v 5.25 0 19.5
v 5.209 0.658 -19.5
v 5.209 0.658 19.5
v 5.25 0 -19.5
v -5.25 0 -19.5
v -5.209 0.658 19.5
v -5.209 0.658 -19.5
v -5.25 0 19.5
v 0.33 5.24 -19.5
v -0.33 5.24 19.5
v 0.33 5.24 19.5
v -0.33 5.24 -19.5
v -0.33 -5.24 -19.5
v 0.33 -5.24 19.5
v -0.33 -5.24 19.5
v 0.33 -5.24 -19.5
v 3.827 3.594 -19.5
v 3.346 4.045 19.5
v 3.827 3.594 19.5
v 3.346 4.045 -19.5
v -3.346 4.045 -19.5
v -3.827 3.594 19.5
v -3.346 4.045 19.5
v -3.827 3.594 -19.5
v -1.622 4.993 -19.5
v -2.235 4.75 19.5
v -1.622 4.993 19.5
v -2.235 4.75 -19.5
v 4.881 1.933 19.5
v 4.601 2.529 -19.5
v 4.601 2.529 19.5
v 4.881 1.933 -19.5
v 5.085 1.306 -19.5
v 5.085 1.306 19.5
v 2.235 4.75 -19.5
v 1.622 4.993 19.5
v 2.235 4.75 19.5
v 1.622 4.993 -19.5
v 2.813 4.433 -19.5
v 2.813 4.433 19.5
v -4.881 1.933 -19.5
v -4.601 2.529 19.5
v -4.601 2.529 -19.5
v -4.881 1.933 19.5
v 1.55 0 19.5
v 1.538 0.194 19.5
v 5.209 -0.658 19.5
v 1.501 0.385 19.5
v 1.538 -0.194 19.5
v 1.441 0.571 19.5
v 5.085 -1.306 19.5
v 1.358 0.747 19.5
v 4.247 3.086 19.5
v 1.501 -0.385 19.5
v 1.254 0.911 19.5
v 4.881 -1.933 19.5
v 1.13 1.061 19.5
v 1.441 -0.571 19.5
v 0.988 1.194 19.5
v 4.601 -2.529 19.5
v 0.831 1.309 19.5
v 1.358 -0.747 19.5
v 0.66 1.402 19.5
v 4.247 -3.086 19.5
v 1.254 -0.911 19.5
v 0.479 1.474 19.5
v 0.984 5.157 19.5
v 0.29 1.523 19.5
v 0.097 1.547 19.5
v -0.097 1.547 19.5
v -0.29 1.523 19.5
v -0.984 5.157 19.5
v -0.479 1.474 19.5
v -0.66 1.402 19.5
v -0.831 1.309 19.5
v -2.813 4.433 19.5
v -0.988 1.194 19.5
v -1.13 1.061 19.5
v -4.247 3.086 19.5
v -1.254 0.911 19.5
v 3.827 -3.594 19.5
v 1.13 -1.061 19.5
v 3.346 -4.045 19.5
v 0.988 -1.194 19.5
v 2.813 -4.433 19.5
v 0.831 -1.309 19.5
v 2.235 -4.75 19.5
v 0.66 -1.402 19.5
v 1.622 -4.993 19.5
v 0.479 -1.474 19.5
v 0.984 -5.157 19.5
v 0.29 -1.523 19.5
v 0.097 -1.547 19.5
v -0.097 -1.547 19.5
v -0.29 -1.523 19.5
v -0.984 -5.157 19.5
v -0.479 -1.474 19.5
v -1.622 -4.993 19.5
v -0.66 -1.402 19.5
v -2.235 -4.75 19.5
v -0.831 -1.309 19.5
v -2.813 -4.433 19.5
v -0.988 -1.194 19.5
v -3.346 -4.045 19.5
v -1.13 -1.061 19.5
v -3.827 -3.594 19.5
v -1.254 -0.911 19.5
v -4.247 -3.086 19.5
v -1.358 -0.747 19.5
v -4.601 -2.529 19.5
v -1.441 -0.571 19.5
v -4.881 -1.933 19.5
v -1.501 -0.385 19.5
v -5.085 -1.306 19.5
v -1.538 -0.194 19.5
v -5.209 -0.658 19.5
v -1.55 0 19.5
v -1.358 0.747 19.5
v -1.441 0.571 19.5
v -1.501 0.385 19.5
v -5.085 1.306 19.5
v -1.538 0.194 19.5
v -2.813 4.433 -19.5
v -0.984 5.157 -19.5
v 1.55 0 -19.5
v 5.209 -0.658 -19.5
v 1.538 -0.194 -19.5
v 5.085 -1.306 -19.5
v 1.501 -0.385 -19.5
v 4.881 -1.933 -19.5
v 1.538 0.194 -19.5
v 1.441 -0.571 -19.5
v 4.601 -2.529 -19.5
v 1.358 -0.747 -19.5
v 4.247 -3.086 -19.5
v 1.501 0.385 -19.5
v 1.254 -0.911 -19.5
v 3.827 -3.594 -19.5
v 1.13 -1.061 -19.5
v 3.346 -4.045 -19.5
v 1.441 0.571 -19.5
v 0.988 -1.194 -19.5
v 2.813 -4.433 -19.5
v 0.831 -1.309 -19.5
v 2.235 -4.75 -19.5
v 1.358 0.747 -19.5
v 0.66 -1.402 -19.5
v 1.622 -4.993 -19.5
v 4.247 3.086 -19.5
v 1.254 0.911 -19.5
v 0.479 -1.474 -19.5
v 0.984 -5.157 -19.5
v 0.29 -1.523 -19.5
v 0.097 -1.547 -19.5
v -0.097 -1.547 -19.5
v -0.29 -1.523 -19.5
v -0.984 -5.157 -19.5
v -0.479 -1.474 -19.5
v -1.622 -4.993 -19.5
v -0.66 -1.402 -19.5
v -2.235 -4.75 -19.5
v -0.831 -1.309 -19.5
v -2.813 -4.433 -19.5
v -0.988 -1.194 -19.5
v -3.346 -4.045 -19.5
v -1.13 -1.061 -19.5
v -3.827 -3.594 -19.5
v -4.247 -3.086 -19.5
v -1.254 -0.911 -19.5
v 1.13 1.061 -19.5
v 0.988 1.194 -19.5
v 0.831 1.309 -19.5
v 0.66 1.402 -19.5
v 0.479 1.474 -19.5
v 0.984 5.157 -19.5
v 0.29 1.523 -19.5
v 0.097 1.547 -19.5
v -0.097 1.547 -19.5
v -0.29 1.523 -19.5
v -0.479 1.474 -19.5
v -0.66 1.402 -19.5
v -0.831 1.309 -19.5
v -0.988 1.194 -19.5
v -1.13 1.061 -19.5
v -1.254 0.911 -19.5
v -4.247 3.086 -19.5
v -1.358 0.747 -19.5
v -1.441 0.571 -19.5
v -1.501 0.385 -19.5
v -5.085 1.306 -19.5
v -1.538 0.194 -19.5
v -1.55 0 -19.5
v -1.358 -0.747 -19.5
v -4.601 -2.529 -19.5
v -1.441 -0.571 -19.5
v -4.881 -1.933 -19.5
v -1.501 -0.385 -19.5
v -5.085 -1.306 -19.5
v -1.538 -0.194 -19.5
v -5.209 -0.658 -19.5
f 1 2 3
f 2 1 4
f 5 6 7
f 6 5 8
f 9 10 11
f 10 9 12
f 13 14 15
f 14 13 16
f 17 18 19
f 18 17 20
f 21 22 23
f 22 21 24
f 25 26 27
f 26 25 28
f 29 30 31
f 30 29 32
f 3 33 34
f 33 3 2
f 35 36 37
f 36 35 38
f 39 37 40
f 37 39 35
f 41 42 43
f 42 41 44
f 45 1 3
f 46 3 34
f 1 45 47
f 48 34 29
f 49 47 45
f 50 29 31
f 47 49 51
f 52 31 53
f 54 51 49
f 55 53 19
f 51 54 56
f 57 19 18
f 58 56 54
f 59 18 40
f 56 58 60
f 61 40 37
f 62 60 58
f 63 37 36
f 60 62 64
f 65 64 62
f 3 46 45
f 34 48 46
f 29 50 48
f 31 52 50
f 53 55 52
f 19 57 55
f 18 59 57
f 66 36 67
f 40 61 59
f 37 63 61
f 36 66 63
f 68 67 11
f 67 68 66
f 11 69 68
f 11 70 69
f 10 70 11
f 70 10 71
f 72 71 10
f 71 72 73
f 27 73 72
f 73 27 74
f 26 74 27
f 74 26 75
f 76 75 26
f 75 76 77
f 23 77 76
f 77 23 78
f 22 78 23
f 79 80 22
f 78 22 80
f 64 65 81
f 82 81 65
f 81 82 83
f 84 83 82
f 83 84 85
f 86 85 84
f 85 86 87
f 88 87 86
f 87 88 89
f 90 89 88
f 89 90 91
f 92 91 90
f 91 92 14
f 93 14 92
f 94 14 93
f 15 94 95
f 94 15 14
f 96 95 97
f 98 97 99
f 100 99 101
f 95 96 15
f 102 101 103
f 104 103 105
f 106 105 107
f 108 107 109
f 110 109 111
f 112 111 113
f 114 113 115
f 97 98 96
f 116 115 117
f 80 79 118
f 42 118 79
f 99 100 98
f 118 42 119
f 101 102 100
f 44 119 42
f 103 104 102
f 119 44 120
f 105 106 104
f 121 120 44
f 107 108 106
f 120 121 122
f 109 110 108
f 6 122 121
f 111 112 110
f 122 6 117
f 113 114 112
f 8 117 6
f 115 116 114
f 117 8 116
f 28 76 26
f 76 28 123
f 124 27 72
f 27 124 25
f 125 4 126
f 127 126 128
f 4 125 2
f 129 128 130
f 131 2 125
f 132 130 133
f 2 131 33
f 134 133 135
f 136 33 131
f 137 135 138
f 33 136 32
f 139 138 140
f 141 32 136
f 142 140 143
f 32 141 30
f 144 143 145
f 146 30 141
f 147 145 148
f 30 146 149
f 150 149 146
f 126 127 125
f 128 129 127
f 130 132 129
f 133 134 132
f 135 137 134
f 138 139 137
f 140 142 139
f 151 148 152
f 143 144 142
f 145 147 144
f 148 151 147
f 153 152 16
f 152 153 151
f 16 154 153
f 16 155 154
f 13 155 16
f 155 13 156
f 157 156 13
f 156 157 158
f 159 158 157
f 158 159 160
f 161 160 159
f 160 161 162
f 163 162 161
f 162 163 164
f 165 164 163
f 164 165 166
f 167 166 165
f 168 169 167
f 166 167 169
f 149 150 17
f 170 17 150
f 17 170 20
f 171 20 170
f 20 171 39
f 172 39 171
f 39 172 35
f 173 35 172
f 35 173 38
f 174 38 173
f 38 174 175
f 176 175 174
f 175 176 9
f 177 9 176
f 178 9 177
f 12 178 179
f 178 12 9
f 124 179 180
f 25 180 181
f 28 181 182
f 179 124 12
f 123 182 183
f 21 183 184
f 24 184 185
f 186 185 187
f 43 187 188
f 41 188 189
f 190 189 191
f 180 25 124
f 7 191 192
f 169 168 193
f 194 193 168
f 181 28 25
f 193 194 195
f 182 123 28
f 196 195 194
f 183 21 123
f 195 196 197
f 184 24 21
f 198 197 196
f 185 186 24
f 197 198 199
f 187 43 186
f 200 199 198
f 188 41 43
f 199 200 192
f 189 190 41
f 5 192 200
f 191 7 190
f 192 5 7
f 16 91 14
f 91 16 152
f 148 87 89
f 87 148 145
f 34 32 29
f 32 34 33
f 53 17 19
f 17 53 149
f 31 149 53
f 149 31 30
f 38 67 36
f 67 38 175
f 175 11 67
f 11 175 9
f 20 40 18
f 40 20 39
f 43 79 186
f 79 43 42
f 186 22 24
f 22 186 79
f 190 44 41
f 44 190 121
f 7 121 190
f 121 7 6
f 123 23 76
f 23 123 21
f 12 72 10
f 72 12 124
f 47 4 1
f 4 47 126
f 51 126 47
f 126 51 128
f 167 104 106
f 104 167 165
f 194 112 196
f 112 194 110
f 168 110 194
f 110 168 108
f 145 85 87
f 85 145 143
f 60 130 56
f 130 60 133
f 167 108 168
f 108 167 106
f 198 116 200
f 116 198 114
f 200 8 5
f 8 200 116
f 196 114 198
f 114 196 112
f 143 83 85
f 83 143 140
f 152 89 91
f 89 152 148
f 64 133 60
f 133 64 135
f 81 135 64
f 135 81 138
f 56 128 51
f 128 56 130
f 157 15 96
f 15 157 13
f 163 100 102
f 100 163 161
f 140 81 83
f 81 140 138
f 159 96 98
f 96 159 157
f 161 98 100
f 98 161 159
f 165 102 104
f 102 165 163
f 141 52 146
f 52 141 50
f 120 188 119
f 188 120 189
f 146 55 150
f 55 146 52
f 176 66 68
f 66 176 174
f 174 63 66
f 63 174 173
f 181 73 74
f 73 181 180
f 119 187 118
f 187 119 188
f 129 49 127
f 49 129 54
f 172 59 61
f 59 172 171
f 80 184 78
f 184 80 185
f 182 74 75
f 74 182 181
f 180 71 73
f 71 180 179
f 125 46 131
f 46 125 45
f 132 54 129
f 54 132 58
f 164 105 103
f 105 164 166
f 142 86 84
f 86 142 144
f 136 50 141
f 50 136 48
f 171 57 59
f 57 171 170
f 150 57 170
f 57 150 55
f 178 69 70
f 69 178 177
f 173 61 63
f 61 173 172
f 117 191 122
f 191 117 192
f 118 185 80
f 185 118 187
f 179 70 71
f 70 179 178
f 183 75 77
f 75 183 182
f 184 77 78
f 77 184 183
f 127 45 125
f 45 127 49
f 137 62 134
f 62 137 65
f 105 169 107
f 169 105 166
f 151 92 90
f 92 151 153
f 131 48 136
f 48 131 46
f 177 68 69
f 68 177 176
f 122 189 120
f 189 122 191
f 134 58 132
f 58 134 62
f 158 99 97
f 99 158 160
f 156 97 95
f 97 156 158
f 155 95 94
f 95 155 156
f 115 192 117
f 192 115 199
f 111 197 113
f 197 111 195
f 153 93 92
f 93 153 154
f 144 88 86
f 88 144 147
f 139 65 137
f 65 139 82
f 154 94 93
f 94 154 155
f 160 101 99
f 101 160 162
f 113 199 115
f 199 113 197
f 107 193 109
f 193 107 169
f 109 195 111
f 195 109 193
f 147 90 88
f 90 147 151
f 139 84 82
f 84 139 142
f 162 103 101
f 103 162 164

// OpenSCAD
$fn = 50;


difference() {
	union() {
		translate(v = [0, 0, -19.5000000000]) {
			cylinder(h = 39, r = 5.2500000000);
		}
	}
	union() {
		translate(v = [0, 0, -100.0000000000]) {
			cylinder(h = 200, r = 1.5500000000);
		}
	}
}
